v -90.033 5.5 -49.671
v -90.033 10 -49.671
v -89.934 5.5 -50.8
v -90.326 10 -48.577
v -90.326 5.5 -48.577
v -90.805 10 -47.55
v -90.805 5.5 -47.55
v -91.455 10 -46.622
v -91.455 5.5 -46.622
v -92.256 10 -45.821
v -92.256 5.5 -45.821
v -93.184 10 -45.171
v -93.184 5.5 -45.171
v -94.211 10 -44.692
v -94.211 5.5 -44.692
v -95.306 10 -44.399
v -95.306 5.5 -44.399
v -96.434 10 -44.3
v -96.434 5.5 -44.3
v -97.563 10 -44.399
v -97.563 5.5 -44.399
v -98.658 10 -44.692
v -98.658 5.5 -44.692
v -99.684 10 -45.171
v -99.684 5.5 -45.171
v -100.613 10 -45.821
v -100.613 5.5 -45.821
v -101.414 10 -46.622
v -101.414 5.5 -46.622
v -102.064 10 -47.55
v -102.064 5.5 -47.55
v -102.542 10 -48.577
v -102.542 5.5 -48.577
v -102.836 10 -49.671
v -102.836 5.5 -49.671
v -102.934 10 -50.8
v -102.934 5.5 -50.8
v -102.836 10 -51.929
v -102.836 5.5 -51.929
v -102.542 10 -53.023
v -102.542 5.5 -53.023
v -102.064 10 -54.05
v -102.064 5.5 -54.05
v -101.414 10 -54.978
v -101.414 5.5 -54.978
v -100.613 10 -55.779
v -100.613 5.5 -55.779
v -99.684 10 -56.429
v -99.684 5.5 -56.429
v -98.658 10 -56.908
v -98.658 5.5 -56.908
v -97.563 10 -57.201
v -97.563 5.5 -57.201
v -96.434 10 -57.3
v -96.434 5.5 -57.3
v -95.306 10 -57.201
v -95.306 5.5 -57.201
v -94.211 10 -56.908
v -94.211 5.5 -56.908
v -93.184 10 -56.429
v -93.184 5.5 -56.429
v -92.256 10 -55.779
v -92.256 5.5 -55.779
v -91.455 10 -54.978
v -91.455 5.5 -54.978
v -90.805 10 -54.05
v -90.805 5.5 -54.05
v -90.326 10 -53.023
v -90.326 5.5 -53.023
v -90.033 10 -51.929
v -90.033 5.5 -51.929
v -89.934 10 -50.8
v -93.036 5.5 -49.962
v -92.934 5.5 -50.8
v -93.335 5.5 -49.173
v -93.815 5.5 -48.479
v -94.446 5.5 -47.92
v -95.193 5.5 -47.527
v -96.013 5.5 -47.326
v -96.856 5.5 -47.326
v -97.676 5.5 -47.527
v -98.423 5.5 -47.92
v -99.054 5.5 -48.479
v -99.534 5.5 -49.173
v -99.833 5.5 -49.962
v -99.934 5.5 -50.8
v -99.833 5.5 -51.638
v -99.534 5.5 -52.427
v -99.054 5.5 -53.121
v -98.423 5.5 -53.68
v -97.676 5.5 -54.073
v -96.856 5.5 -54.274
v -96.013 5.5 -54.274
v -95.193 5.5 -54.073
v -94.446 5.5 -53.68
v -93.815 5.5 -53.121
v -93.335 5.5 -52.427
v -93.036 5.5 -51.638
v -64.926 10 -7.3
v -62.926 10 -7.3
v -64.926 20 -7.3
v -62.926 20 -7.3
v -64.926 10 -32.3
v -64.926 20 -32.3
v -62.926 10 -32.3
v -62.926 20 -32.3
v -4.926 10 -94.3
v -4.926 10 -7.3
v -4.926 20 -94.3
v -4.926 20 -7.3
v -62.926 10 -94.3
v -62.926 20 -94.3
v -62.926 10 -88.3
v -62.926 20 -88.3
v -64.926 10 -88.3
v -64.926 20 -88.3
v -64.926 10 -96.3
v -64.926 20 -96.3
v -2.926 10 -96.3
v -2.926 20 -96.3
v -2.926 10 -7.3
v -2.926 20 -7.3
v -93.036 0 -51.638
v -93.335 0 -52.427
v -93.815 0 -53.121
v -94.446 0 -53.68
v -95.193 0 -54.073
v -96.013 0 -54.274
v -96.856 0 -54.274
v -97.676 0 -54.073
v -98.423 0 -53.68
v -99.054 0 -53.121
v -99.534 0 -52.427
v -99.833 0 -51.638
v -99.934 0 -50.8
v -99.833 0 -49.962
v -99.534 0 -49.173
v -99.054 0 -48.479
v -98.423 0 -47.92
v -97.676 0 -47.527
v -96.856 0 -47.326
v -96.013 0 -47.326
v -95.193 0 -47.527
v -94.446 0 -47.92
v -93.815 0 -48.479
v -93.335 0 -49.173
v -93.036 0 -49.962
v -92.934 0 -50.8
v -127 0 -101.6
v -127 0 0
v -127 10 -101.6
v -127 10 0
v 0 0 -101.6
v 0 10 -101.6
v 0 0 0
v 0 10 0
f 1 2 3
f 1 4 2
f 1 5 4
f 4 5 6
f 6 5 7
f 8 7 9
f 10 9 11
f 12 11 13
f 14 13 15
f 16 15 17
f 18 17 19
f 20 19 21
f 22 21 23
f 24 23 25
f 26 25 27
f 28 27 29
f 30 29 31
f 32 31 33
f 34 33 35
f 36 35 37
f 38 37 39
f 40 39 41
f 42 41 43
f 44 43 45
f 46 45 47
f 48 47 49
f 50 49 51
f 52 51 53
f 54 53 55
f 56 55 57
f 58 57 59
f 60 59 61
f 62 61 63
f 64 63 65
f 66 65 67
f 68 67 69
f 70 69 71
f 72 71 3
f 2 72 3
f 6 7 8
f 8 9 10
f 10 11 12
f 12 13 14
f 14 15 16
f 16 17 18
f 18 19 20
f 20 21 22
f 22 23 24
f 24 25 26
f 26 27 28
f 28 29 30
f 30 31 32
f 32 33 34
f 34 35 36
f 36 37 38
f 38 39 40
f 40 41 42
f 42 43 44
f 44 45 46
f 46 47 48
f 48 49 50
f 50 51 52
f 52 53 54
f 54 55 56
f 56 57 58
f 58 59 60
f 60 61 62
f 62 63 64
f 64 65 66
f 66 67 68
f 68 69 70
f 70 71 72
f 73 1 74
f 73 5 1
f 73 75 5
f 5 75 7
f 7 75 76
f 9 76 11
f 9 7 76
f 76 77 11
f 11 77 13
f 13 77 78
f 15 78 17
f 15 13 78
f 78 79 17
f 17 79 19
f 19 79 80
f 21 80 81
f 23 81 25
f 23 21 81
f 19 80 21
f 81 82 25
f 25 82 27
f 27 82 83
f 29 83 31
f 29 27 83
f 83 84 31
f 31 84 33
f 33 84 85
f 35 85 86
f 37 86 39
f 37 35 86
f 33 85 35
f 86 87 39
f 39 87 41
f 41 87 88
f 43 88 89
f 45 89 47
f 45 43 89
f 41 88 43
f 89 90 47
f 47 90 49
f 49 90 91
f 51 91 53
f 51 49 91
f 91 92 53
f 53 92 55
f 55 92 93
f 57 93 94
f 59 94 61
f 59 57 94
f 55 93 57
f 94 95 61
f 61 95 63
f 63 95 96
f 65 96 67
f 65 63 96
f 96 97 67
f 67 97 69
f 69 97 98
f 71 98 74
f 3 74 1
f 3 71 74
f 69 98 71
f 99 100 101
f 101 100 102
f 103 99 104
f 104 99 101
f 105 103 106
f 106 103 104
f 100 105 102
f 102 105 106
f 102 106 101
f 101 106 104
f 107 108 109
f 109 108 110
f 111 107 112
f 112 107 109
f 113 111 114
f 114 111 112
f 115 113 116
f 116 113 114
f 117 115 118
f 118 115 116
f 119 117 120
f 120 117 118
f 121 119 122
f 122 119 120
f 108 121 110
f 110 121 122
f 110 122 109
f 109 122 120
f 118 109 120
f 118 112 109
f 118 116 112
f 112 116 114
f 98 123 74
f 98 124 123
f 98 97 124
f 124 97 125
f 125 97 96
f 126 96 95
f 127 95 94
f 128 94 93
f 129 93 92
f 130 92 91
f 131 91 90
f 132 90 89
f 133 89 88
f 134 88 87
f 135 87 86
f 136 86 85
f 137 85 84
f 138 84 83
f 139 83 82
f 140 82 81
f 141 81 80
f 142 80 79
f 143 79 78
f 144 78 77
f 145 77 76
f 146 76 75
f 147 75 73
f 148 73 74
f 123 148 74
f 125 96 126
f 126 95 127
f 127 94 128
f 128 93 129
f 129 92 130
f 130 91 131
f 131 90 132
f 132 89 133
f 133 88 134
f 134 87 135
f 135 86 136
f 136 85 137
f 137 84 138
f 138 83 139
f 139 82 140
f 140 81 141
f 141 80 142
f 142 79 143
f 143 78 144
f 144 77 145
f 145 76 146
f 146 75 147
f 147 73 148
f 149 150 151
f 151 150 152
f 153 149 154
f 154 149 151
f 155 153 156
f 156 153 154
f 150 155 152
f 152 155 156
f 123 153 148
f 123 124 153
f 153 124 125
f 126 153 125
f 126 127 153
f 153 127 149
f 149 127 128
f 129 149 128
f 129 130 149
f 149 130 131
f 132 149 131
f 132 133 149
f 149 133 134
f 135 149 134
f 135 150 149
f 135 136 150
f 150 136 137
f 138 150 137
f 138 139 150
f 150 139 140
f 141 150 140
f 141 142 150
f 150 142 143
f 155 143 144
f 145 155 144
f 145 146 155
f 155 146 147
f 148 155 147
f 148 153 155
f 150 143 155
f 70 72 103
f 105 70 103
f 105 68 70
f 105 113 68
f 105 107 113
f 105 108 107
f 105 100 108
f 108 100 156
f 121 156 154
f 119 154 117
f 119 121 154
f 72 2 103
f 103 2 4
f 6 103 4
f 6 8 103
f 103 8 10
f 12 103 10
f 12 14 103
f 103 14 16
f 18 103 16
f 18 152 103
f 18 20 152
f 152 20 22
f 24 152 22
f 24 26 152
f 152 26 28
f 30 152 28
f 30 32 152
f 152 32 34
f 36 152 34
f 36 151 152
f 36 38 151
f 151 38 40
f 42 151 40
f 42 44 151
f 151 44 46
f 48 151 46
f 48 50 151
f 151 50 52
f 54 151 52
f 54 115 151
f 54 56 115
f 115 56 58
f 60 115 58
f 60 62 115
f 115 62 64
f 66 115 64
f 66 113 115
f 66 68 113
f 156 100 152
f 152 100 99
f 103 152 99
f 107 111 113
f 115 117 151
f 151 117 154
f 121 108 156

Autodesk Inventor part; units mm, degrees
ref_plane "YZ Plane" through (0, 0, 0) normal (1, 0, 0) x (0, 1, 0)
ref_plane "XZ Plane" through (0, 0, 0) normal (0, 1, 0) x (-1, 0, 0)
ref_plane "XY Plane" through (0, 0, 0) normal (0, 0, 1) x (1, 0, 0)
sketch "Sketch1" plane through (0, 0, 0) normal (0, 1, 0) x (-1, 0, 0)
  line L0 (0, 0) -> (127, 0)
  line L1 (127, 0) -> (127, -101.6)
  line L2 (127, -101.6) -> (0, -101.6)
  line L3 (0, -101.6) -> (0, 0)
  dimension "d1" = 127
extrude "Extrusion1" add sketch "Sketch1" along normal blind 10
sketch "Sketch2" plane through (0, 10, 0) normal (0, 1, 0) x (1, 0, 0)
  line L0 (0, 0) -> (0, 101.6) projected
  line L1 (-5.9255, 8.3) -> (-61.9255, 8.3)
  line L2 (-61.9255, 8.3) -> (-61.9255, 93.3)
  line L3 (-61.9255, 93.3) -> (-5.9255, 93.3)
  line L4 (-5.9255, 93.3) -> (-5.9255, 8.3)
  line L5 (-5.9255, 8.3) -> (-61.9255, 93.3) construction
  line L6 (-61.9255, 8.3) -> (-5.9255, 93.3) construction
  line L7 (-126.4344, 50.8) -> (-96.4344, 50.8)
  circle A0 centre (-96.4344, 50.8) radius 3.5
  point P0 (-33.9255, 50.8)
  dimension "d5" = 56
  dimension "d6" = 85
  dimension "d7" = 30
  dimension "d8" = 7
extrude "Extrusion2" cut sketch "Sketch2" against normal through all contours A0
sketch "Sketch3" plane through (0, 10, 0) normal (0, 1, 0) x (1, 0, 0)
  line L0 (-5.9255, 8.3) -> (-61.9255, 93.3) construction
  line L1 (-61.9255, 8.3) -> (-5.9255, 93.3) construction
  line L2 (-126.4344, 50.8) -> (-96.4344, 50.8)
  circle A0 centre (-96.4344, 50.8) radius 3.5
  line L3 (-4.9255, 7.3) -> (-62.9255, 7.3)
  line L4 (-62.9255, 7.3) -> (-62.9255, 94.3)
  line L5 (-62.9255, 94.3) -> (-4.9255, 94.3)
  line L6 (-4.9255, 94.3) -> (-4.9255, 7.3)
  line L7 (-4.9255, 7.3) -> (-62.9255, 94.3) construction
  line L8 (-62.9255, 7.3) -> (-4.9255, 94.3) construction
  line L9 (-62.9255, 94.3) -> (-62.9255, 84.3)
  line L10 (-62.9255, 94.3) -> (-62.9255, 88.3)
  line L11 (-62.9255, 88.3) -> (-64.9255, 88.3)
  line L12 (-64.9255, 88.3) -> (-64.9255, 96.3)
  line L13 (-64.9255, 96.3) -> (-2.9255, 96.3)
  line L14 (-2.9255, 96.3) -> (-2.9255, 7.3)
  line L15 (-2.9255, 7.3) -> (-4.9255, 7.3)
  line L16 (-4.9255, 94.3) -> (-62.9255, 94.3)
  line L17 (-62.9255, 7.3) -> (-64.9255, 7.3)
  line L18 (-64.9255, 7.3) -> (-64.9255, 32.3)
  line L19 (-64.9255, 32.3) -> (-62.9255, 32.3)
  point P0 (-33.9255, 50.8)
  dimension "d13" = 30
  dimension "d14" = 7
  dimension "d20" = 6
  dimension "d21" = 2
  dimension "d22" = 8
  dimension "d23" = 62
  dimension "d24" = 2
  dimension "d25" = 25
extrude "Extrusion3" add sketch "Sketch3" along normal blind 10 contours L6 L5 L4 L11 L12 L13 L14 L15 | L17 L18 L19 L4
sketch "Sketch4" plane through (0, 10, 0) normal (0, 1, 0) x (1, 0, 0)
  circle A0 centre (-96.4344, 50.8) radius 3.5 projected
  circle A1 centre (-96.4344, 50.8) radius 6.5
  point P0 (0, 0)
  dimension "d28" = 13
extrude "Extrusion4" cut sketch "Sketch4" against normal blind 4.5
sketch "Sketch5" plane through (0, 10, 0) normal (0, 1, 0) x (1, 0, 0)
  point P0 (0, 0)
properties part number "CraneBase"
